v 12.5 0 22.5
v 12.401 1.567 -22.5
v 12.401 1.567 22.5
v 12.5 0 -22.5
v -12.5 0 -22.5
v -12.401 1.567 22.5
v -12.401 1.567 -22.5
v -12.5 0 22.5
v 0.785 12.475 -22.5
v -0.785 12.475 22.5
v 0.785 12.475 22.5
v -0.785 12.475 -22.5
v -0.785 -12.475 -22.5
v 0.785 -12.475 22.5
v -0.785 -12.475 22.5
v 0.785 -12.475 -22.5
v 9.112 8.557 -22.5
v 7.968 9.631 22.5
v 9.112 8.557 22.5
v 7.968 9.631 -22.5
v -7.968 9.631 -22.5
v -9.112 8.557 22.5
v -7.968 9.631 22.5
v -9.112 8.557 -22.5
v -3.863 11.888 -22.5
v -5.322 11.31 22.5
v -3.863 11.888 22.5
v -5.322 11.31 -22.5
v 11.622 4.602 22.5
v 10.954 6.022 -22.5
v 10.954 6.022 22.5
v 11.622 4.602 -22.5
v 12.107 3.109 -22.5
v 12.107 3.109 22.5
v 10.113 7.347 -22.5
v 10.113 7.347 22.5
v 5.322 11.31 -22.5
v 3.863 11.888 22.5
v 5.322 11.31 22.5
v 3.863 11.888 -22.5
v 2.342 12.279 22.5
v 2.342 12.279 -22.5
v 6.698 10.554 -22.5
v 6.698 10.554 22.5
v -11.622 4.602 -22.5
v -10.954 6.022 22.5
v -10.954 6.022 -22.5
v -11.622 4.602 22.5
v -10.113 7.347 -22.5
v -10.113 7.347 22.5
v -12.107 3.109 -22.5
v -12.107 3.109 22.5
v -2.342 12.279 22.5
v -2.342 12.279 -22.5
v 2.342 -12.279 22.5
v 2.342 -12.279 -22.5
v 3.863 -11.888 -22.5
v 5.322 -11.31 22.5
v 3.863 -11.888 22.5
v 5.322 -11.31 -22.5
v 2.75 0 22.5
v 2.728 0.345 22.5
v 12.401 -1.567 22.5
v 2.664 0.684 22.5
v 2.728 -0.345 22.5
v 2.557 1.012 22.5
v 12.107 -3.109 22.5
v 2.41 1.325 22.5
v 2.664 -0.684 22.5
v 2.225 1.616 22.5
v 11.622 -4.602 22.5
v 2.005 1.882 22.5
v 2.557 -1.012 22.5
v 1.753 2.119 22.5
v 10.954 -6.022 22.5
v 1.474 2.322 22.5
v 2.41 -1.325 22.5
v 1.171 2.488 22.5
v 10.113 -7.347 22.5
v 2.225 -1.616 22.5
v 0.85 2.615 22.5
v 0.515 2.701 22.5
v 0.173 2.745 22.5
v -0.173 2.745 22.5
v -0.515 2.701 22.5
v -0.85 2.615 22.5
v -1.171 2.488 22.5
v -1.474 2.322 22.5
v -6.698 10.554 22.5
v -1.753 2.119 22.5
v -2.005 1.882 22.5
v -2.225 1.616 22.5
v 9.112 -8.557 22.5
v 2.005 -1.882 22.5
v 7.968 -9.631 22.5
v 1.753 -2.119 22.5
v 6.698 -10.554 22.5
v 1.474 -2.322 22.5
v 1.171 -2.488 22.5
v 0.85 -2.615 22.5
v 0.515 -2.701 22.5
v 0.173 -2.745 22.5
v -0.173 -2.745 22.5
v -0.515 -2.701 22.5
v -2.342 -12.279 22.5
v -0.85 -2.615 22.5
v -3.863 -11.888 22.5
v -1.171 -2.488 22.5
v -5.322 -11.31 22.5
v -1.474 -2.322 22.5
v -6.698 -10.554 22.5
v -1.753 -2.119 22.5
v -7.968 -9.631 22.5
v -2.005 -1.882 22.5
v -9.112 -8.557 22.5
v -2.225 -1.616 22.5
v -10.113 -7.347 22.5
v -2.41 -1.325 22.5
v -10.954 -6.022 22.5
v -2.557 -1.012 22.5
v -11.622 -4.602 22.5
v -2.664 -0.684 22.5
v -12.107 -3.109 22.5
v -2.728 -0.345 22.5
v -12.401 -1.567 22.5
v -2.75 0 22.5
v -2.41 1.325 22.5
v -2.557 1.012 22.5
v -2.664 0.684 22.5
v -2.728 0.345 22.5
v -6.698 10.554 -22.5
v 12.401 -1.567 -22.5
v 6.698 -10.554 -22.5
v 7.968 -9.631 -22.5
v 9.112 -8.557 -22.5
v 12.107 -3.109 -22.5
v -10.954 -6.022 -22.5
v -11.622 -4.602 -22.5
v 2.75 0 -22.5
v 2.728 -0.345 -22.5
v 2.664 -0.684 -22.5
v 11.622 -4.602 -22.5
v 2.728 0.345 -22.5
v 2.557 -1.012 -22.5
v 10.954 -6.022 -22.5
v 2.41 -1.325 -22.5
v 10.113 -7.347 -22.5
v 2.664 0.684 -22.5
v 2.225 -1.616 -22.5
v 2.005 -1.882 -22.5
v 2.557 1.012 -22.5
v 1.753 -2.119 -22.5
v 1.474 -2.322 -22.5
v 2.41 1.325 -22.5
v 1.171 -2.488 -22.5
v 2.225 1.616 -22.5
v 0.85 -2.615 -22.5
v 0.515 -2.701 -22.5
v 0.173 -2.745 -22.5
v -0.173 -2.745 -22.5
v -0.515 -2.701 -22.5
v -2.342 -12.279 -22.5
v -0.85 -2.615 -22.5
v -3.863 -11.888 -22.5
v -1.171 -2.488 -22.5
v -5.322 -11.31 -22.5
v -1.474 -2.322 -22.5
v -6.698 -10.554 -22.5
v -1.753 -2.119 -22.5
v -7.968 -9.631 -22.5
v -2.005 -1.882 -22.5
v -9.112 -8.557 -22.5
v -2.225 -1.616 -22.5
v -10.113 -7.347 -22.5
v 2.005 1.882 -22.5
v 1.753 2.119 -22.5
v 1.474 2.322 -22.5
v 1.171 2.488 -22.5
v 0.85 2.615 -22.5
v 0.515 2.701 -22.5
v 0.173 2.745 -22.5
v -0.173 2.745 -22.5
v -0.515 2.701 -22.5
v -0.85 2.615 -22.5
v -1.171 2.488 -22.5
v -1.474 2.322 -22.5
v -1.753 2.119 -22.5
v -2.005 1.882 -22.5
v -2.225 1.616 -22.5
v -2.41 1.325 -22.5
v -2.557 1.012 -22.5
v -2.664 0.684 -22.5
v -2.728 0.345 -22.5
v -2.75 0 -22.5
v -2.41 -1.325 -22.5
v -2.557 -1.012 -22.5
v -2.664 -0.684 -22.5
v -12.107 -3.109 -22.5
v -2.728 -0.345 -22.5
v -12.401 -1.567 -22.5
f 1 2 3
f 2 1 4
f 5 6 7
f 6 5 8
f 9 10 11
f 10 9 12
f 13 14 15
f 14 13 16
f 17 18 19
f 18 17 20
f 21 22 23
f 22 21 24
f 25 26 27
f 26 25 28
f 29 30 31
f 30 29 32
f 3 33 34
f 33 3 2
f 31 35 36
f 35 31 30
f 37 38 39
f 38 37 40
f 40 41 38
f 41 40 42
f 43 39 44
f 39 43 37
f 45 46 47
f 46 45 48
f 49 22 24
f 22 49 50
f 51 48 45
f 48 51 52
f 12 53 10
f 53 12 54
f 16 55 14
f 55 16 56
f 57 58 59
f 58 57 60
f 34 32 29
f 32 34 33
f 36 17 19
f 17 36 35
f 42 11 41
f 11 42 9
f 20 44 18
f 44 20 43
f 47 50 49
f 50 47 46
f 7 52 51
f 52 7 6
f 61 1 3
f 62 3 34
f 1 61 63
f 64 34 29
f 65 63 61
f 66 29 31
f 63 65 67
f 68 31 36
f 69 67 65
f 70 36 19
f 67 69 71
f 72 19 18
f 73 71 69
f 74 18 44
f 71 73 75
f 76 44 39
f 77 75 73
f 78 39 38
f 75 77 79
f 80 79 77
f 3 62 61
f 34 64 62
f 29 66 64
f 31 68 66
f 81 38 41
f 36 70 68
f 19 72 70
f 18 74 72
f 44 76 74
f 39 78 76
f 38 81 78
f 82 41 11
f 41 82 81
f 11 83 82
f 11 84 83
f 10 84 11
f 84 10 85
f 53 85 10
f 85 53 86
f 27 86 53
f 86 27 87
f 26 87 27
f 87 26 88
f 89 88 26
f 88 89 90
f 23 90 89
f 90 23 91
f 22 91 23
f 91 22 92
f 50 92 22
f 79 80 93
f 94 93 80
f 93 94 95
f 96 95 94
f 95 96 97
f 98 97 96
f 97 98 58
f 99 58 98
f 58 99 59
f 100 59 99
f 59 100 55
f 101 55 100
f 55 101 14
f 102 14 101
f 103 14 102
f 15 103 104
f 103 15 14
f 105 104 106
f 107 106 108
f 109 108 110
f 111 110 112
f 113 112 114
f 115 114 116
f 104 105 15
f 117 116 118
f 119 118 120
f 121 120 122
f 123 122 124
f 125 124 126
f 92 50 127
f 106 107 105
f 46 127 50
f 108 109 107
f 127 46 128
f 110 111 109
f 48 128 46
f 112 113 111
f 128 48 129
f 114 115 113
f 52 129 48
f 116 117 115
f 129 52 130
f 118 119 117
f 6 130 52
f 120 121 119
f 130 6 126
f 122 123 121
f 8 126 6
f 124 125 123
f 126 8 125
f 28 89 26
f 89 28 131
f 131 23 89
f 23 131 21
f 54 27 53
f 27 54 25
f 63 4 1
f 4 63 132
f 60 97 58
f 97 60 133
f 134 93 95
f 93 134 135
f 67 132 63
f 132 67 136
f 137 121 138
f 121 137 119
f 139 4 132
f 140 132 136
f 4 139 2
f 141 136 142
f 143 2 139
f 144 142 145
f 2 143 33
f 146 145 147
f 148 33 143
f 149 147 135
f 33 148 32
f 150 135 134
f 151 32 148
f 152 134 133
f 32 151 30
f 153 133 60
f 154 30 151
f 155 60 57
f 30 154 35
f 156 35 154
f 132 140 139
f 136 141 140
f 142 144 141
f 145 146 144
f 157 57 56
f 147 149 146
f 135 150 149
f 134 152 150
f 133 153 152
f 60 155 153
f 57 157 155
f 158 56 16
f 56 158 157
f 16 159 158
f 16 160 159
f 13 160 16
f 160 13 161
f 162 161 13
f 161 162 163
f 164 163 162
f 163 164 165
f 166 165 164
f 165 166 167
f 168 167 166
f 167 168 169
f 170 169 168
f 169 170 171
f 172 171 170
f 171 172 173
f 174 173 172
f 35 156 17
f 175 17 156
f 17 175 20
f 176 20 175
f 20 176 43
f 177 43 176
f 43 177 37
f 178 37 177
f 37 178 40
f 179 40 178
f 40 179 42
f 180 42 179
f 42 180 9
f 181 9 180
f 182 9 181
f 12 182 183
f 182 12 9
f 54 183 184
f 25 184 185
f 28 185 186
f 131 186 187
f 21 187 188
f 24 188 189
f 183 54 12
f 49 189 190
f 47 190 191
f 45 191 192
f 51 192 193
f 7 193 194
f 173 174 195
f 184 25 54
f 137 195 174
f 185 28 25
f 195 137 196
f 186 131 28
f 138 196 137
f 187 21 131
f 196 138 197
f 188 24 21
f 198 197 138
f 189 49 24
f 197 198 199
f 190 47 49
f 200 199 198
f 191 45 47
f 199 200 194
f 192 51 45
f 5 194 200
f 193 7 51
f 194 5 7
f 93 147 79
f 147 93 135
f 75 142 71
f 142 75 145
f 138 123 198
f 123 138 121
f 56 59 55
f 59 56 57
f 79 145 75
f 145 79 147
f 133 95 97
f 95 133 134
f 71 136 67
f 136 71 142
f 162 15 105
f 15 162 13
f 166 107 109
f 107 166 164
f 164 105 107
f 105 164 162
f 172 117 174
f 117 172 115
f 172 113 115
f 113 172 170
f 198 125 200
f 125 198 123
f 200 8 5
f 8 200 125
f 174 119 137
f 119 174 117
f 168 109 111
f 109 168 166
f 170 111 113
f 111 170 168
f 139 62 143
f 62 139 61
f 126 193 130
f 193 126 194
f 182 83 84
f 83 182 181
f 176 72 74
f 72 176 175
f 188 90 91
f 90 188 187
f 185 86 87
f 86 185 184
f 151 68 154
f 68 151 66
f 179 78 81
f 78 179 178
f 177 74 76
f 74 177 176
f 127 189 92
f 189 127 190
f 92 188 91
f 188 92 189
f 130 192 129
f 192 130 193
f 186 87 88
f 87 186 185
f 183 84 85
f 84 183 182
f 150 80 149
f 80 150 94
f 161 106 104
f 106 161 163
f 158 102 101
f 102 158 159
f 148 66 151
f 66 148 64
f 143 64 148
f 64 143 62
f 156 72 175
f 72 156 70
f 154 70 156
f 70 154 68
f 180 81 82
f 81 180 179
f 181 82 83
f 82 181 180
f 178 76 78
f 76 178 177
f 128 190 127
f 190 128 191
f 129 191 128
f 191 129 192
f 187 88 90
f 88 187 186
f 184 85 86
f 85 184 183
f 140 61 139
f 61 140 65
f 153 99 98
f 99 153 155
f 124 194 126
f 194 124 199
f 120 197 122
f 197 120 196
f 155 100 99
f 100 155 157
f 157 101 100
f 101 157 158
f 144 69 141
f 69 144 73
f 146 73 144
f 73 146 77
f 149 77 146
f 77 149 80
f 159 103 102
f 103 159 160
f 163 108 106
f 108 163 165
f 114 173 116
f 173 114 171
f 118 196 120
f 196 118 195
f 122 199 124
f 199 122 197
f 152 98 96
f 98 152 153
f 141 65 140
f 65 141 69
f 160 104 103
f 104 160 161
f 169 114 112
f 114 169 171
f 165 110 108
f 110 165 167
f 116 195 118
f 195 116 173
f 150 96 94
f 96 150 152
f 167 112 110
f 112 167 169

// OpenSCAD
$fn = 50;


difference() {
	union() {
		translate(v = [0, 0, -22.5000000000]) {
			cylinder(h = 45, r = 12.5000000000);
		}
	}
	union() {
		translate(v = [0, 0, -100.0000000000]) {
			cylinder(h = 200, r = 2.7500000000);
		}
	}
}
